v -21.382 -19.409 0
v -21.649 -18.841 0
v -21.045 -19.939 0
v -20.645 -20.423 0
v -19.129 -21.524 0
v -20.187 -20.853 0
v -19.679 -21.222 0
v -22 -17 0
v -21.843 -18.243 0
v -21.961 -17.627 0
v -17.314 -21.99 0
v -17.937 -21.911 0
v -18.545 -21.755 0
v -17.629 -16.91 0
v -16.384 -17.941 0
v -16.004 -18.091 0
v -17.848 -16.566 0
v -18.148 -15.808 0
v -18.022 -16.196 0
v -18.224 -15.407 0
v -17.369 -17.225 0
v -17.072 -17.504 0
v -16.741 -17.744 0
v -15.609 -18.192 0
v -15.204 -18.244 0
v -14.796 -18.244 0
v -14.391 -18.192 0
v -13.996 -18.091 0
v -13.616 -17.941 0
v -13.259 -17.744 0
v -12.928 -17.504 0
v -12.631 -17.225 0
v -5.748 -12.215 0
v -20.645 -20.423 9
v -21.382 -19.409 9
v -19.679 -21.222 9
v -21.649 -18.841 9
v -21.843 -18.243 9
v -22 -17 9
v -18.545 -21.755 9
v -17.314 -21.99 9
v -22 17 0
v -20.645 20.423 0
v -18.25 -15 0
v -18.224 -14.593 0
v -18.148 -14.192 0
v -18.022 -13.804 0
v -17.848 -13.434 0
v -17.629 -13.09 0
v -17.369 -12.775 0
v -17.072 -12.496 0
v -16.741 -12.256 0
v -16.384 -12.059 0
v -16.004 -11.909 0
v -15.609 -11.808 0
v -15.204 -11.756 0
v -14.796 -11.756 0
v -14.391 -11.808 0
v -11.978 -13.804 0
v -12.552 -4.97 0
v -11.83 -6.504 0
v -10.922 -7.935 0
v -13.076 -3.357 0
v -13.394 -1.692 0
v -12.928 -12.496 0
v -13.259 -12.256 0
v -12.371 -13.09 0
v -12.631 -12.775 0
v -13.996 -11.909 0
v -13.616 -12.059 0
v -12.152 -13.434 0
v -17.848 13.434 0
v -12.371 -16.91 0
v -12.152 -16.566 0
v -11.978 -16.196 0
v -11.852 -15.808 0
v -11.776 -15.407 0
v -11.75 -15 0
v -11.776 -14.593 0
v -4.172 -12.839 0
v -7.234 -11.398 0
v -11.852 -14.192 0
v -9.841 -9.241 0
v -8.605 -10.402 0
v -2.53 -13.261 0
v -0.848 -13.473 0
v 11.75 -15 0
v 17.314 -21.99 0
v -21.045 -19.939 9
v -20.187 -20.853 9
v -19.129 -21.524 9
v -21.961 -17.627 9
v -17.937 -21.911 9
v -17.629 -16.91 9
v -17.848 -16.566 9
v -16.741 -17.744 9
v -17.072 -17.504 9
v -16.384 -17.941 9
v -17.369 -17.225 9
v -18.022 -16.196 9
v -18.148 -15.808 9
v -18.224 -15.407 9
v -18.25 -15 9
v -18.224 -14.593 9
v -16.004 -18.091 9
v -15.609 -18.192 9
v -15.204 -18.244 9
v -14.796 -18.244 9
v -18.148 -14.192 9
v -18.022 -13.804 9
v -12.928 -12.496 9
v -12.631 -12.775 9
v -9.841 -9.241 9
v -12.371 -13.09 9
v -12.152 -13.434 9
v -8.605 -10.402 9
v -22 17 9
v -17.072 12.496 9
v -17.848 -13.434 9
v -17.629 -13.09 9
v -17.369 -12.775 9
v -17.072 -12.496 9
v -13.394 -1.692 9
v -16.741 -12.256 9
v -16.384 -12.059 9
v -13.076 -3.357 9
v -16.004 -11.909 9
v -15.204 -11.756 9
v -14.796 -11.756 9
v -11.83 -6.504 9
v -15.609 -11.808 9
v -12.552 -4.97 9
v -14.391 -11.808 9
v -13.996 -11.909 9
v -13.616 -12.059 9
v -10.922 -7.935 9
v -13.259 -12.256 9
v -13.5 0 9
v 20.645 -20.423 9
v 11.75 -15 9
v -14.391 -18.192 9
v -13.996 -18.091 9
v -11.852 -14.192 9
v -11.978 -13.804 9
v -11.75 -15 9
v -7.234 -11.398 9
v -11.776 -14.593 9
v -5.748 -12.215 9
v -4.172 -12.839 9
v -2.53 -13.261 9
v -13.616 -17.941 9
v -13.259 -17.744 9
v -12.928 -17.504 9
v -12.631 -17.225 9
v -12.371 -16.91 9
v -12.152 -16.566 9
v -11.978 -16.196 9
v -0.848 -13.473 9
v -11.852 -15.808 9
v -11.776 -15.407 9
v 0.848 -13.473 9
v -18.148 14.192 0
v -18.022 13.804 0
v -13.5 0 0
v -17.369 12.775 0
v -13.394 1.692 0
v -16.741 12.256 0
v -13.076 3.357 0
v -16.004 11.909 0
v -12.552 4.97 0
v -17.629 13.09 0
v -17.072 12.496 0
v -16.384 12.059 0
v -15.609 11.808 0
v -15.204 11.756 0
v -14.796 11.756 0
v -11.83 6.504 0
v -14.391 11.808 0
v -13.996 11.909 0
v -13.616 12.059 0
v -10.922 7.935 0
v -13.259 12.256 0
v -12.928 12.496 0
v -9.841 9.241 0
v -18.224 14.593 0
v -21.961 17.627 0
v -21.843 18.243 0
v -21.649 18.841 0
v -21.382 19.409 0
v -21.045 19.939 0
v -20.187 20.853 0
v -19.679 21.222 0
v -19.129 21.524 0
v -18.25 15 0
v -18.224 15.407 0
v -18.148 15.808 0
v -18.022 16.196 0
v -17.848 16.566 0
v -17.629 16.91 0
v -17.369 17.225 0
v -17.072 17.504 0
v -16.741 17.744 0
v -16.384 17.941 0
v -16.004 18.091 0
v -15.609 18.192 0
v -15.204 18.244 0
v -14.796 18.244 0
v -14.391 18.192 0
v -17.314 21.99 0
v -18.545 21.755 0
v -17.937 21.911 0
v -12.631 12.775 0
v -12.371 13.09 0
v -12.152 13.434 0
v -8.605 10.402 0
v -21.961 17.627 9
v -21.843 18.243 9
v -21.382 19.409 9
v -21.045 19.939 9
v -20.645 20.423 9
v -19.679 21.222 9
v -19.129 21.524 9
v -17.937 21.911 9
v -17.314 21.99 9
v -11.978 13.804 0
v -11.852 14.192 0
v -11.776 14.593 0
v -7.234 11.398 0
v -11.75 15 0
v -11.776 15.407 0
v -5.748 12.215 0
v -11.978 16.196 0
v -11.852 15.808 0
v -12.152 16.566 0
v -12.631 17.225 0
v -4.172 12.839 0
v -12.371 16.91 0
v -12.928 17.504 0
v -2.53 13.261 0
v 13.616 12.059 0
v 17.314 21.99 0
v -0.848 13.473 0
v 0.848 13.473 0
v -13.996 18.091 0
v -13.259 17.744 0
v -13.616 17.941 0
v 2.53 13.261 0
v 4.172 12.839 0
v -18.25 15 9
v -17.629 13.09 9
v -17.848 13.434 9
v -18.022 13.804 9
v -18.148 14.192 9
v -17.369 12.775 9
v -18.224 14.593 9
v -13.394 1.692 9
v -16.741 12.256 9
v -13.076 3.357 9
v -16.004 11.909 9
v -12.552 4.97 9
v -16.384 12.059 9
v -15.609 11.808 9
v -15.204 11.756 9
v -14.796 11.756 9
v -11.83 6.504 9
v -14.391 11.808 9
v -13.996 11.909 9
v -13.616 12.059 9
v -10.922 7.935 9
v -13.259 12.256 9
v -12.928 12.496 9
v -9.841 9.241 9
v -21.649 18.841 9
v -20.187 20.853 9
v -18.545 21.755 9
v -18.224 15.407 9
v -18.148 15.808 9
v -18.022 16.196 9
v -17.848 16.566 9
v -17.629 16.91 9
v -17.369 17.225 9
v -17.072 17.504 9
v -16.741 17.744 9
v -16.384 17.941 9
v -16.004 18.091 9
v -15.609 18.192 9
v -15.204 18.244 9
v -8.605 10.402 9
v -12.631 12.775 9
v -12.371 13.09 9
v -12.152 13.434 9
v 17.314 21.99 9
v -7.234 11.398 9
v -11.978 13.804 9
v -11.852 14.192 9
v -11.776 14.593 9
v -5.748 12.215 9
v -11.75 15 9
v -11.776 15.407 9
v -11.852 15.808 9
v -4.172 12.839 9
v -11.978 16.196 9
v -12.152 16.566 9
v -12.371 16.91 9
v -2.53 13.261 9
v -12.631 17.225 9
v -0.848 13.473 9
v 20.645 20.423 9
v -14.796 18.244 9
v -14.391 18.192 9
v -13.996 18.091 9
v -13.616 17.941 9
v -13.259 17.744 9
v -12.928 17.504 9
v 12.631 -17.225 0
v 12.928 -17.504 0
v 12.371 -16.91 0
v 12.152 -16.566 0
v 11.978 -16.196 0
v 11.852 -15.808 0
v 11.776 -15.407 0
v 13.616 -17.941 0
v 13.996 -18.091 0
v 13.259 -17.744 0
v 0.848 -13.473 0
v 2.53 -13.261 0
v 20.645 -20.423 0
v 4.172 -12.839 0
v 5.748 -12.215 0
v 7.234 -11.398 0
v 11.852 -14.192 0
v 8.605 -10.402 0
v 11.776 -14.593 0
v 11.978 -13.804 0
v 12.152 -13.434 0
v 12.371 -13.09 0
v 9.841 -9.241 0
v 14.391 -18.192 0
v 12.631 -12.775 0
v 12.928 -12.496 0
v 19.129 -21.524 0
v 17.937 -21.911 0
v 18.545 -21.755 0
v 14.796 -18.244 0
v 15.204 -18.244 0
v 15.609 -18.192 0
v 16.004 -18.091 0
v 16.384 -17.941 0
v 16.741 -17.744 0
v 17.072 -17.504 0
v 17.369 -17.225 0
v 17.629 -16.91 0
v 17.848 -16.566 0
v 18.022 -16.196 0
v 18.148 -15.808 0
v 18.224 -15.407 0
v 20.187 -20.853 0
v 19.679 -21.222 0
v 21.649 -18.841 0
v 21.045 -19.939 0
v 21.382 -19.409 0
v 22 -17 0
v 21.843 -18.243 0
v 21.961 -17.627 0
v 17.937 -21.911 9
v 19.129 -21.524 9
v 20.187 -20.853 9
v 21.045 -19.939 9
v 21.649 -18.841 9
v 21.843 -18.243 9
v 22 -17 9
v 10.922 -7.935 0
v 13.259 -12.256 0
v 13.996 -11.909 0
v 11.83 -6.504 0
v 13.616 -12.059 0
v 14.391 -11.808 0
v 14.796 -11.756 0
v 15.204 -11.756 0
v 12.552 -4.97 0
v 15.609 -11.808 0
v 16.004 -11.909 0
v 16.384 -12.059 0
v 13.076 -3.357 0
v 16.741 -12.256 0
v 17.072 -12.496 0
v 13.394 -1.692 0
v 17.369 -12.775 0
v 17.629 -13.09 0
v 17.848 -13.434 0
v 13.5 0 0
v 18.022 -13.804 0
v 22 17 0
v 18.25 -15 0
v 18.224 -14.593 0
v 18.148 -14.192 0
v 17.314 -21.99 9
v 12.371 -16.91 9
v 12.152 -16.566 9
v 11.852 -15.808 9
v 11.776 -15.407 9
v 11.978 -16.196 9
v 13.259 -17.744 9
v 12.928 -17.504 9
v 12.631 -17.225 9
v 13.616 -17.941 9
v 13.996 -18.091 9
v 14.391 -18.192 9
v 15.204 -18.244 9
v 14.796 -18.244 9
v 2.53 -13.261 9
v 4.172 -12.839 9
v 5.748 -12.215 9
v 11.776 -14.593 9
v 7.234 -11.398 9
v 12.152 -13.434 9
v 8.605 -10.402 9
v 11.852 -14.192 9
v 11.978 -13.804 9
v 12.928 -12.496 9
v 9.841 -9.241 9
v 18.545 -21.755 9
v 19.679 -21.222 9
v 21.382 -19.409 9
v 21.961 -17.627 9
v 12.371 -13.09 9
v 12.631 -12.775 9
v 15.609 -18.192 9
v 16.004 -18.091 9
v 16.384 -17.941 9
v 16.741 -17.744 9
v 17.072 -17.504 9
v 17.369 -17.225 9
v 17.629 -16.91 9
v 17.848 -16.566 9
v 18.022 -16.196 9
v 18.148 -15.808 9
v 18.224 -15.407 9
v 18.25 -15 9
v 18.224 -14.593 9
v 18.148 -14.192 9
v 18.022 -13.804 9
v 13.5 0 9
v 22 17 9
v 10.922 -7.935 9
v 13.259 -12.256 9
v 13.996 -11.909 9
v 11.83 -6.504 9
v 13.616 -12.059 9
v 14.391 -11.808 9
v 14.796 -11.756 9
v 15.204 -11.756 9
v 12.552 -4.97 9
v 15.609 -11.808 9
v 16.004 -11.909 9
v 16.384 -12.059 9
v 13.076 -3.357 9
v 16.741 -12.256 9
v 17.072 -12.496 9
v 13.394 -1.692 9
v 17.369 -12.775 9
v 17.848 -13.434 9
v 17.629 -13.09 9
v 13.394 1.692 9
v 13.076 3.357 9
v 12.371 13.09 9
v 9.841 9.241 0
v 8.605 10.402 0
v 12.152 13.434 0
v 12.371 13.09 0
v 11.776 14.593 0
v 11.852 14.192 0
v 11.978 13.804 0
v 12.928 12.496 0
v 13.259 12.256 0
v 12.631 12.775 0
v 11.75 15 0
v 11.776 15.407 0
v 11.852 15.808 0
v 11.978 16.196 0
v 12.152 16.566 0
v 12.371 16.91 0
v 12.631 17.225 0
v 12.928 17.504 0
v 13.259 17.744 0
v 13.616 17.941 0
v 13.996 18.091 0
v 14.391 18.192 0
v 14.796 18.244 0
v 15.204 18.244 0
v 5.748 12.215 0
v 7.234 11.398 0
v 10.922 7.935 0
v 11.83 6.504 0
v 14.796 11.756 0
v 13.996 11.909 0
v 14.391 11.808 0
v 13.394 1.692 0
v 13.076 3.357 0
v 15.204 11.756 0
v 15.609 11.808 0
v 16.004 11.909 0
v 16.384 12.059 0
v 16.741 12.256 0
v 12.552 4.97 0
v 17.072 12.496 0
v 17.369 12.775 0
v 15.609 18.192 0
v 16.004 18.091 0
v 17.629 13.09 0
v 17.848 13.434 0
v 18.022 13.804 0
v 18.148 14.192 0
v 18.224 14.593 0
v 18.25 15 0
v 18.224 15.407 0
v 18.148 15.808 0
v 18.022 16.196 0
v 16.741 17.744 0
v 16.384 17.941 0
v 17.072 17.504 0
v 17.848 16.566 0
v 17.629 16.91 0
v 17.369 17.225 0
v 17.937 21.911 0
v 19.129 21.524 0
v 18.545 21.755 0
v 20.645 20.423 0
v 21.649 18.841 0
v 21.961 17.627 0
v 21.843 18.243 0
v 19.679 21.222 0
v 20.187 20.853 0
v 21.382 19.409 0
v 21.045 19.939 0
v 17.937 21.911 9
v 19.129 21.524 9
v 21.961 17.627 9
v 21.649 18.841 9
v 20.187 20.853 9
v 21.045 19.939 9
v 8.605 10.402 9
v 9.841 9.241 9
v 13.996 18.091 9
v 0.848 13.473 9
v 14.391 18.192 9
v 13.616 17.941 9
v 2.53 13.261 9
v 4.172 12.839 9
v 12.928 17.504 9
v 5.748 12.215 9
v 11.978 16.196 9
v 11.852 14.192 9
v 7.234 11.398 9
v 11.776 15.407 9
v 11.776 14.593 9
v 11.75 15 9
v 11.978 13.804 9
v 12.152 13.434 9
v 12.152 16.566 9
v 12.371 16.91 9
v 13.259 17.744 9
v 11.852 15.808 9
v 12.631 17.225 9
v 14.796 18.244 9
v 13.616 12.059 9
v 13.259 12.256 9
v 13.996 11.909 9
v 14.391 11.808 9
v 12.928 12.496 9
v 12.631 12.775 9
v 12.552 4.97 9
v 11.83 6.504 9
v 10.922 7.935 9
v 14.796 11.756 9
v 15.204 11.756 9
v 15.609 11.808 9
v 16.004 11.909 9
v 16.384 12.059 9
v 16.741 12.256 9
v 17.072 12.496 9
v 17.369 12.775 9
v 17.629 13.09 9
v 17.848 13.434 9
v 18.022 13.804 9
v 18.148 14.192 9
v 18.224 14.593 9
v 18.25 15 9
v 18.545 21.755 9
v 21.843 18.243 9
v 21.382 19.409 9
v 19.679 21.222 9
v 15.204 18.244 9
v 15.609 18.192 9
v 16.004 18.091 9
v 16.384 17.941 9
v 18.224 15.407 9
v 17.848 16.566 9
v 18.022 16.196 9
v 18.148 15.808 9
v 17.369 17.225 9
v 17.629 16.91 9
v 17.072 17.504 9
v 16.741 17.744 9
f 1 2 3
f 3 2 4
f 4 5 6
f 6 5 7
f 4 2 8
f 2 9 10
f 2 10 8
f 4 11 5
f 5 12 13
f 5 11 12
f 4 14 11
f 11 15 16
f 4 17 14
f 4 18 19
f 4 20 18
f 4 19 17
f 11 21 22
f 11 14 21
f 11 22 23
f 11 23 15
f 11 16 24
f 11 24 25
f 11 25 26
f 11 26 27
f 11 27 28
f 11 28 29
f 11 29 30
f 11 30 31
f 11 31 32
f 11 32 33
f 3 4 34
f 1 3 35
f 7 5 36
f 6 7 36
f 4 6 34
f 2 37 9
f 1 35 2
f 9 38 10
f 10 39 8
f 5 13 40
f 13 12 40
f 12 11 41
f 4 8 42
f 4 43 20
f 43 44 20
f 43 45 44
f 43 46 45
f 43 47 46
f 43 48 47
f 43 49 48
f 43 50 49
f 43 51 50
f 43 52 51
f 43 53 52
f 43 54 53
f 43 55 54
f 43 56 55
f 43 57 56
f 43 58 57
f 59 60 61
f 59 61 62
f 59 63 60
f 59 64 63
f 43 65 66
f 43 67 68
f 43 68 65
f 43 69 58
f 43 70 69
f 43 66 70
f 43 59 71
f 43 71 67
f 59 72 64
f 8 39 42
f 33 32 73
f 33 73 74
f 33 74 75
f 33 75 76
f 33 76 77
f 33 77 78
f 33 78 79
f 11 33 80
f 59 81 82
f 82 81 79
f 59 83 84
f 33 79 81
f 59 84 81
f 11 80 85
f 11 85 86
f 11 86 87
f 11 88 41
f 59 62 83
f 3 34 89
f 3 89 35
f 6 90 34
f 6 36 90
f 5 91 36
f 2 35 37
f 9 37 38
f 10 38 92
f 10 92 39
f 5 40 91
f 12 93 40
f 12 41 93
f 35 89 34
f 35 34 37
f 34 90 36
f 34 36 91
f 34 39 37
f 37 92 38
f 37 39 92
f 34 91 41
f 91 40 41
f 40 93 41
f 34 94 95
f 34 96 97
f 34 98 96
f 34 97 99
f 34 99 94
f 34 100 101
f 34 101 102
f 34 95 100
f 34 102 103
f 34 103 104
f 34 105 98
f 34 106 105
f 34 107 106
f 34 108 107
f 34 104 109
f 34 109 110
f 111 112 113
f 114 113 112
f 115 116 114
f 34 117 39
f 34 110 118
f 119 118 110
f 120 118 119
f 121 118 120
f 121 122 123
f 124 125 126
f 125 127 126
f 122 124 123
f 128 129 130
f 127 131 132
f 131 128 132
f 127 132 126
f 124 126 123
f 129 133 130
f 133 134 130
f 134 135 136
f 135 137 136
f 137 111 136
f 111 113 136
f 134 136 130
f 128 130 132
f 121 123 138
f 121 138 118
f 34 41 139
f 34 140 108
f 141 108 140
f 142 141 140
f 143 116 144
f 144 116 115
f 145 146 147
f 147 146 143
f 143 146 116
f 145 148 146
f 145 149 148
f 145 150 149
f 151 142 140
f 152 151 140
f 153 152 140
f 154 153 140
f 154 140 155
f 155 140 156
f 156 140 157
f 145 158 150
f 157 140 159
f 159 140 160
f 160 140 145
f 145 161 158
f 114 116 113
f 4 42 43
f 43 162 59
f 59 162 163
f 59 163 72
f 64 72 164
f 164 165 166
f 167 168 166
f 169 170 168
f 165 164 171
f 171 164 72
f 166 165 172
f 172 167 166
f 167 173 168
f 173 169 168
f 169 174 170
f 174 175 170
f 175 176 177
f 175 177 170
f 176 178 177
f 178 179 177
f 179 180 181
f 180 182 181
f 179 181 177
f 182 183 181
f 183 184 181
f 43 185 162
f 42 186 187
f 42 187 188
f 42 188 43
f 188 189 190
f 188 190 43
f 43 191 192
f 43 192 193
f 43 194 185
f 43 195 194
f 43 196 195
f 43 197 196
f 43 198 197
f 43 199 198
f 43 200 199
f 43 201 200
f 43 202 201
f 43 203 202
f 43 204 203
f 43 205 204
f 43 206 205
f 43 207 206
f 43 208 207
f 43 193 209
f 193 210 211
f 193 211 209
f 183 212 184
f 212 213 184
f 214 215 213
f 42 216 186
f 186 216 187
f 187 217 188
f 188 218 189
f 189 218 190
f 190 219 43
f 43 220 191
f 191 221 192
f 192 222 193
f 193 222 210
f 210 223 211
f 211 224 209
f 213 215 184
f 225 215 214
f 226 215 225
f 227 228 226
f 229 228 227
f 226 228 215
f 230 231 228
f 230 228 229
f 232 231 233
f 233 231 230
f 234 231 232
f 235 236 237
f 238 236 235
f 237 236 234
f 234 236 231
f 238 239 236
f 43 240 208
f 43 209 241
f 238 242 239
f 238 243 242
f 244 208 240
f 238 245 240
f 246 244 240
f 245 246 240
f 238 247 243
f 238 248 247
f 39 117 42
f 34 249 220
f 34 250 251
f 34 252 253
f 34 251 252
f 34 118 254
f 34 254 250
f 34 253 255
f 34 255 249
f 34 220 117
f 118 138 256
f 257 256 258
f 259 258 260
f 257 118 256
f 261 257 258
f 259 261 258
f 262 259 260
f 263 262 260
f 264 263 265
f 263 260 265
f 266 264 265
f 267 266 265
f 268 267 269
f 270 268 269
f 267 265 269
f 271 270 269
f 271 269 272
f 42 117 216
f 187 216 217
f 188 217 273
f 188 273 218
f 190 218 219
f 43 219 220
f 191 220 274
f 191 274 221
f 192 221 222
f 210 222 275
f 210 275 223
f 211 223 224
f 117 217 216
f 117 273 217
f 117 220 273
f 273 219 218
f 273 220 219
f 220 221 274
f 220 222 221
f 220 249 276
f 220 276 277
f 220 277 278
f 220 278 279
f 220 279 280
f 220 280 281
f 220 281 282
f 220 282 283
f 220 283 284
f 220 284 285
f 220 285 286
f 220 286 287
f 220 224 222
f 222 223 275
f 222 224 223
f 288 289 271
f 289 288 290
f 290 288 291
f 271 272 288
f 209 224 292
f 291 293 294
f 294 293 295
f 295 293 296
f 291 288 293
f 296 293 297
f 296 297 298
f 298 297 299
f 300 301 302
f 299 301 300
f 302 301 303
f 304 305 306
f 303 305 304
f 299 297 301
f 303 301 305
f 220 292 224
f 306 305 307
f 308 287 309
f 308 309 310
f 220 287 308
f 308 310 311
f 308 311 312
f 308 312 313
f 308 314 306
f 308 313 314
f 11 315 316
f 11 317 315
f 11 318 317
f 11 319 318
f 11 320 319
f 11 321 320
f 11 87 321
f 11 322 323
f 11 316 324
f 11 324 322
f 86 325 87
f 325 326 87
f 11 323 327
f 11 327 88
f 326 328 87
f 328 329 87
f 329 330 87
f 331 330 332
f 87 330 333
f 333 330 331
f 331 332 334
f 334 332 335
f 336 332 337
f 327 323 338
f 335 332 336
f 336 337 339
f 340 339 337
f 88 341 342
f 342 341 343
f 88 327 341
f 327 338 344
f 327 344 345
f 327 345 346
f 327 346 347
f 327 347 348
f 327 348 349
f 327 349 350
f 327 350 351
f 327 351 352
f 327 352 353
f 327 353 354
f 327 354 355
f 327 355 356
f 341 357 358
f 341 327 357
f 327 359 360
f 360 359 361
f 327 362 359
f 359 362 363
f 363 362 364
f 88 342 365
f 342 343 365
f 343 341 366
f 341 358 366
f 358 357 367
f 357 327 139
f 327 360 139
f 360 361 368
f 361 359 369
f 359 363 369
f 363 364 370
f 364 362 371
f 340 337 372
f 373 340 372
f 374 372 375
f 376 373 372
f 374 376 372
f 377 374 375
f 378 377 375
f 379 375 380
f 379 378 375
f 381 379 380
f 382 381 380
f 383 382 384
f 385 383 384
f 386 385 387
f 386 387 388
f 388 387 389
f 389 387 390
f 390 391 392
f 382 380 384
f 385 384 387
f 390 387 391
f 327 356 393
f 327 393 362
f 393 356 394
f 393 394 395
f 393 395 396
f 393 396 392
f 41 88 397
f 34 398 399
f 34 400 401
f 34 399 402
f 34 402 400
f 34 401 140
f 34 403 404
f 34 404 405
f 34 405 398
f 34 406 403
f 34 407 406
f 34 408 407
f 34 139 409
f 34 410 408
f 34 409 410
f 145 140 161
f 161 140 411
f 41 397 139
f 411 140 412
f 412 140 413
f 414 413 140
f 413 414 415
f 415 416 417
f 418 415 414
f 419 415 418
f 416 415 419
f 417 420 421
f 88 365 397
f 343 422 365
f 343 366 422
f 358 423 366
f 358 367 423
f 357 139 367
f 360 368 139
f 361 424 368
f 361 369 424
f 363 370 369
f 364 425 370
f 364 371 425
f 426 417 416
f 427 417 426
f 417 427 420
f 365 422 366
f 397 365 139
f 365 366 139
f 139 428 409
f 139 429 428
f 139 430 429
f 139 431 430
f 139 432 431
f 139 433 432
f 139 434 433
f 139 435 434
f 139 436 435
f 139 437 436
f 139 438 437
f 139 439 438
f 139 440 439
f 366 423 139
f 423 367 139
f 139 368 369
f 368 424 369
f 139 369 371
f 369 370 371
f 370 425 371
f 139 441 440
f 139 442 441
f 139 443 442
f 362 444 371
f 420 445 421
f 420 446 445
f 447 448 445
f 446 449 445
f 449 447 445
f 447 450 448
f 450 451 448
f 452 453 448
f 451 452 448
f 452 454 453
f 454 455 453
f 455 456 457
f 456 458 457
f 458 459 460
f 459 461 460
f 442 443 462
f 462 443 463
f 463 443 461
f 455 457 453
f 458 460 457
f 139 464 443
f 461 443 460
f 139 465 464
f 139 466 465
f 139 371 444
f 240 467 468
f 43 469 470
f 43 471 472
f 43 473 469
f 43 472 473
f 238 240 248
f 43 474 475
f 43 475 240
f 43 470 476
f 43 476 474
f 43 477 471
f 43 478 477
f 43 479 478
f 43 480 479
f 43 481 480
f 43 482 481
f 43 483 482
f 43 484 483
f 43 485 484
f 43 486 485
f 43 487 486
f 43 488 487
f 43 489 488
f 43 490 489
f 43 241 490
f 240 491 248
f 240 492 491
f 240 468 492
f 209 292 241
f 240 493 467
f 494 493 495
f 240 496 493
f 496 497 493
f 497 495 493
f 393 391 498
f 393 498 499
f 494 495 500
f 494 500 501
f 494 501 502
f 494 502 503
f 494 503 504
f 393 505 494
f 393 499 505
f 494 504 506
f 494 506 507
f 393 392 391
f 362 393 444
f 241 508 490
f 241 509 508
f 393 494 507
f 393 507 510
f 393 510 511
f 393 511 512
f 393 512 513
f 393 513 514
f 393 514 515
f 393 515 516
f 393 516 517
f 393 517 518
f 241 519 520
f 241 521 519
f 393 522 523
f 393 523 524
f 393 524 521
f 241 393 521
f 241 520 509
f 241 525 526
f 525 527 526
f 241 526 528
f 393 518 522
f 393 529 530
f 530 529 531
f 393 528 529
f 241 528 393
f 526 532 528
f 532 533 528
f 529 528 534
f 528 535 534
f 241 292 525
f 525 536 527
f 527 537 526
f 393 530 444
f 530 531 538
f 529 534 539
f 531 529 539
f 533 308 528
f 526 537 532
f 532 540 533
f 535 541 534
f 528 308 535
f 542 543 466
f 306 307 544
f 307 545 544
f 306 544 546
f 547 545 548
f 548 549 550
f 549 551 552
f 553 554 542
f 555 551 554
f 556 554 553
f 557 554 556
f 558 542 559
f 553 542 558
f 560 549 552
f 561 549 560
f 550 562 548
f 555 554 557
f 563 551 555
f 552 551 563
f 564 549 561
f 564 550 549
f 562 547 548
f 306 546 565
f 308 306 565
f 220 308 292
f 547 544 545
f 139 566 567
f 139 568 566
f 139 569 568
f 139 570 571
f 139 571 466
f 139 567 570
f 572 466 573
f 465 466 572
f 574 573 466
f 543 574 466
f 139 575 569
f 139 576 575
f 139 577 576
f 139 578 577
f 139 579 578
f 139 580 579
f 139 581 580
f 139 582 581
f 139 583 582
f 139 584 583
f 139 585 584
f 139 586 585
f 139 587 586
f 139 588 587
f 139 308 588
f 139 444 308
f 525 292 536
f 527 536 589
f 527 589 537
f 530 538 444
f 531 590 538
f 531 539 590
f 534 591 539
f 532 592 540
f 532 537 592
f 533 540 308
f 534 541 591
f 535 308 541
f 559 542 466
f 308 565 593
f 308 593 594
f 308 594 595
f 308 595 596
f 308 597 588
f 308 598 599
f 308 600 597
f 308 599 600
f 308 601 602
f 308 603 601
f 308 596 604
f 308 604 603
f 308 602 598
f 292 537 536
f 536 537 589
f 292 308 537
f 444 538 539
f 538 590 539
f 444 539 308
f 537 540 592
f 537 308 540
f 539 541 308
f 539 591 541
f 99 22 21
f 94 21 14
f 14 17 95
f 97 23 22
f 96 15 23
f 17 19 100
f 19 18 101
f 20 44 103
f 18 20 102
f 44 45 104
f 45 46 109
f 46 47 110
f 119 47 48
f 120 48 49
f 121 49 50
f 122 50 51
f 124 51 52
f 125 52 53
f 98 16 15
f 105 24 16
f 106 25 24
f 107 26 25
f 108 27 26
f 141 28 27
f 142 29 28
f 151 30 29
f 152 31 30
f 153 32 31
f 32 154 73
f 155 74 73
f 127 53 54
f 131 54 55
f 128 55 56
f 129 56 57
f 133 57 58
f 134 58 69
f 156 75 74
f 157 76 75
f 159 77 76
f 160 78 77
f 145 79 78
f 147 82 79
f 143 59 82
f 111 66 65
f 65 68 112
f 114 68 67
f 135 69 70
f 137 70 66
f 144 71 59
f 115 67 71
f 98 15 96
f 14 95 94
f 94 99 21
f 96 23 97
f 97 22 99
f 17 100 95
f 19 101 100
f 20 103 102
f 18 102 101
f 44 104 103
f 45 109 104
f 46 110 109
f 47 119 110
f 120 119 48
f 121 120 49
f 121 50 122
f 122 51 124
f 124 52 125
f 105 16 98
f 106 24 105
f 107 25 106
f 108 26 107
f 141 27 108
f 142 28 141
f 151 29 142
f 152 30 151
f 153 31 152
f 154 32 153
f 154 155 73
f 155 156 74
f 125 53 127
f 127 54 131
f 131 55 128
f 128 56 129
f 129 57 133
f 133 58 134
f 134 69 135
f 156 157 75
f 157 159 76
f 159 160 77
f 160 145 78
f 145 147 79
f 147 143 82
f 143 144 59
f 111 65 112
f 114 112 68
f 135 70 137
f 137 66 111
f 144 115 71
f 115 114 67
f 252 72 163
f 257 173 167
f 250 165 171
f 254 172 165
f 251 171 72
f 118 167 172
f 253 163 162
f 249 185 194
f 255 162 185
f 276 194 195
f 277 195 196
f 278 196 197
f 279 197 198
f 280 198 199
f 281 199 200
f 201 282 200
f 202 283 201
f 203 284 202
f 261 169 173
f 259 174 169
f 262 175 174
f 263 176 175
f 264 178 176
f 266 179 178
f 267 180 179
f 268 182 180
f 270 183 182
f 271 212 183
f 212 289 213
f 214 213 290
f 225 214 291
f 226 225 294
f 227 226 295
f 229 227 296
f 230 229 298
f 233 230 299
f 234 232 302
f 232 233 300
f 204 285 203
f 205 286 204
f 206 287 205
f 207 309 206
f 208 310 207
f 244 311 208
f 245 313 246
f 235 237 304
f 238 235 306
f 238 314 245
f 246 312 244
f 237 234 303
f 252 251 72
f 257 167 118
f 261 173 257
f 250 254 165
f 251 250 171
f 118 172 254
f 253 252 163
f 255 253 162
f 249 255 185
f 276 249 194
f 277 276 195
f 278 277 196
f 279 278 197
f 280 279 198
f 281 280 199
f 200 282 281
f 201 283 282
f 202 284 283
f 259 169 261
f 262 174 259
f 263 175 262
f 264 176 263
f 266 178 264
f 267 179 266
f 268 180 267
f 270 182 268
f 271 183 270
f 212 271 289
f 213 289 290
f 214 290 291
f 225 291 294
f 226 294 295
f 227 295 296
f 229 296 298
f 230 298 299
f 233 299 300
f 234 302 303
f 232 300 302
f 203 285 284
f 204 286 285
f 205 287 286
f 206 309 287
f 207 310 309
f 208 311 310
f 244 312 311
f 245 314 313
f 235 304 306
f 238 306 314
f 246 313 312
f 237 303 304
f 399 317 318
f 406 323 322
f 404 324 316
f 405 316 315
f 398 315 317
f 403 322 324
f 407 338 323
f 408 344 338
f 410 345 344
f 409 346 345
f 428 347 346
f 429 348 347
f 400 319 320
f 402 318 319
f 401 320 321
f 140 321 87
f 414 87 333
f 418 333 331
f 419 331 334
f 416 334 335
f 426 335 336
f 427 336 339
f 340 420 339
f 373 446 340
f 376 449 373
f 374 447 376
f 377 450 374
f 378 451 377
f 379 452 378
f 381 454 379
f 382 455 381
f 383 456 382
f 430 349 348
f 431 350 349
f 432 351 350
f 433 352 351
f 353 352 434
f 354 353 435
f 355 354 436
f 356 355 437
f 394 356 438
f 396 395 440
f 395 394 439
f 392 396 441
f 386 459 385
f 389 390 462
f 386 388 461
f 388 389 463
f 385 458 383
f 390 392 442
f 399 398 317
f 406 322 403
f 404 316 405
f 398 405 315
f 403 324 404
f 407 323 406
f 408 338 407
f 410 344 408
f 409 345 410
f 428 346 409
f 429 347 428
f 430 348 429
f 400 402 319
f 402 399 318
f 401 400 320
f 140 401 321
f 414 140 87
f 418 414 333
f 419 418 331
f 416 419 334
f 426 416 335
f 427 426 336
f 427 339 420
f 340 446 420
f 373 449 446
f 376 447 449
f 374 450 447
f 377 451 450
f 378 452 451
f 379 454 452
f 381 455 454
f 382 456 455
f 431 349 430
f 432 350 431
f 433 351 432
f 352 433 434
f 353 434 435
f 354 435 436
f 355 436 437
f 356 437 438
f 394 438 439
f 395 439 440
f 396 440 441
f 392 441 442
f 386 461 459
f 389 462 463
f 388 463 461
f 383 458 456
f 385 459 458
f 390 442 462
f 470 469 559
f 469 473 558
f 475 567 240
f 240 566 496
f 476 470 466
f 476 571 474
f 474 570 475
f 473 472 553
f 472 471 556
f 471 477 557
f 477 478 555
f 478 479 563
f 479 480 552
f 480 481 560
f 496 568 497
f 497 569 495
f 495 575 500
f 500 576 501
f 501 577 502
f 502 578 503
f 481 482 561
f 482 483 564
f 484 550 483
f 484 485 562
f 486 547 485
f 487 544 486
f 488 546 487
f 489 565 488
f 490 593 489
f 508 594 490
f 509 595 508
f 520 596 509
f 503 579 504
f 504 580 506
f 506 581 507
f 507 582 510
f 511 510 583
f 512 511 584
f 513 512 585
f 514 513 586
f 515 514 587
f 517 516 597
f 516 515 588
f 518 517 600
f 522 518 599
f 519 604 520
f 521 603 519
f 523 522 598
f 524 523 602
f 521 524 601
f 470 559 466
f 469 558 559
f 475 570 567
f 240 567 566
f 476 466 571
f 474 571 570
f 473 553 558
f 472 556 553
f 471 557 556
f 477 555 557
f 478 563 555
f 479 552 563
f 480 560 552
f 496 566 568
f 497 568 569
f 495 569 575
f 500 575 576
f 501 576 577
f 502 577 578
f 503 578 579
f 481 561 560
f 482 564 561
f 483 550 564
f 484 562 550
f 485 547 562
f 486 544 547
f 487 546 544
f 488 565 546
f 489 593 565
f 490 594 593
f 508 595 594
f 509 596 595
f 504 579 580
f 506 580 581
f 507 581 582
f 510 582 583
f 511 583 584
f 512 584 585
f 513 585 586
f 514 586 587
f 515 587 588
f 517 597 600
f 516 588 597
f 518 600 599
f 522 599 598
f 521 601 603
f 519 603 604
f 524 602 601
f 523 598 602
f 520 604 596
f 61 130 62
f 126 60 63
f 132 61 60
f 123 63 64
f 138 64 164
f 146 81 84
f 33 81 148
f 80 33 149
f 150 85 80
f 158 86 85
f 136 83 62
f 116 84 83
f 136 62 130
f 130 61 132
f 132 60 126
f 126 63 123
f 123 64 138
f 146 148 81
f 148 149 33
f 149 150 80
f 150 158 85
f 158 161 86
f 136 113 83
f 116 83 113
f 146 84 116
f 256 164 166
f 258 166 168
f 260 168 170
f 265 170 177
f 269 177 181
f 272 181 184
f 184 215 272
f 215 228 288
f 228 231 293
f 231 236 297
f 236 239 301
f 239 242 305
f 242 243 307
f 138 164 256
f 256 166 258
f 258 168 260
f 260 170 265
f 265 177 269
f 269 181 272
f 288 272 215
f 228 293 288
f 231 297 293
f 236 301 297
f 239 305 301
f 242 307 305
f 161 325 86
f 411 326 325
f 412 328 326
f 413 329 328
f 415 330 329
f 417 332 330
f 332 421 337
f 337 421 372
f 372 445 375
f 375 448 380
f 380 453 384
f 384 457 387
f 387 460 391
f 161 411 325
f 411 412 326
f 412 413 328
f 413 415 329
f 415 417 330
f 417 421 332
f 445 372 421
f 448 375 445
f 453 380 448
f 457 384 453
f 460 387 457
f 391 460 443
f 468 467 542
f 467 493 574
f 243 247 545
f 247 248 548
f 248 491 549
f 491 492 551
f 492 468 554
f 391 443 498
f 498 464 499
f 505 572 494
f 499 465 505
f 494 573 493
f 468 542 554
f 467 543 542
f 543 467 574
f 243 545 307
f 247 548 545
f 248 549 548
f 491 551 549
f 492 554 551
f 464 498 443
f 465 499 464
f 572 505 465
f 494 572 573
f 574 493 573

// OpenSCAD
$fn = 50;

difference() {
	union() {
		hull() {
			translate(v = [-17.0, 17.0, 0]) {
				cylinder(h = 9, r = 5);
			}
			translate(v = [17.0, 17.0, 0]) {
				cylinder(h = 9, r = 5);
			}
			translate(v = [-17.0, -17.0, 0]) {
				cylinder(h = 9, r = 5);
			}
			translate(v = [17.0, -17.0, 0]) {
				cylinder(h = 9, r = 5);
			}
		}
	}
	union() {
		translate(v = [-15.0, -15.0, -100.0]) {
			cylinder(h = 200, r = 3.25);
		}
		translate(v = [-15.0, 15.0, -100.0]) {
			cylinder(h = 200, r = 3.25);
		}
		translate(v = [15.0, -15.0, -100.0]) {
			cylinder(h = 200, r = 3.25);
		}
		translate(v = [15.0, 15.0, -100.0]) {
			cylinder(h = 200, r = 3.25);
		}
		translate(v = [-15.0, -15.0, -100.0]) {
			cylinder(h = 200, r = 1.8);
		}
		translate(v = [-15.0, 15.0, -100.0]) {
			cylinder(h = 200, r = 1.8);
		}
		translate(v = [15.0, -15.0, -100.0]) {
			cylinder(h = 200, r = 1.8);
		}
		translate(v = [15.0, 15.0, -100.0]) {
			cylinder(h = 200, r = 1.8);
		}
		cylinder(h = 9, r = 13.5);
	}
}
